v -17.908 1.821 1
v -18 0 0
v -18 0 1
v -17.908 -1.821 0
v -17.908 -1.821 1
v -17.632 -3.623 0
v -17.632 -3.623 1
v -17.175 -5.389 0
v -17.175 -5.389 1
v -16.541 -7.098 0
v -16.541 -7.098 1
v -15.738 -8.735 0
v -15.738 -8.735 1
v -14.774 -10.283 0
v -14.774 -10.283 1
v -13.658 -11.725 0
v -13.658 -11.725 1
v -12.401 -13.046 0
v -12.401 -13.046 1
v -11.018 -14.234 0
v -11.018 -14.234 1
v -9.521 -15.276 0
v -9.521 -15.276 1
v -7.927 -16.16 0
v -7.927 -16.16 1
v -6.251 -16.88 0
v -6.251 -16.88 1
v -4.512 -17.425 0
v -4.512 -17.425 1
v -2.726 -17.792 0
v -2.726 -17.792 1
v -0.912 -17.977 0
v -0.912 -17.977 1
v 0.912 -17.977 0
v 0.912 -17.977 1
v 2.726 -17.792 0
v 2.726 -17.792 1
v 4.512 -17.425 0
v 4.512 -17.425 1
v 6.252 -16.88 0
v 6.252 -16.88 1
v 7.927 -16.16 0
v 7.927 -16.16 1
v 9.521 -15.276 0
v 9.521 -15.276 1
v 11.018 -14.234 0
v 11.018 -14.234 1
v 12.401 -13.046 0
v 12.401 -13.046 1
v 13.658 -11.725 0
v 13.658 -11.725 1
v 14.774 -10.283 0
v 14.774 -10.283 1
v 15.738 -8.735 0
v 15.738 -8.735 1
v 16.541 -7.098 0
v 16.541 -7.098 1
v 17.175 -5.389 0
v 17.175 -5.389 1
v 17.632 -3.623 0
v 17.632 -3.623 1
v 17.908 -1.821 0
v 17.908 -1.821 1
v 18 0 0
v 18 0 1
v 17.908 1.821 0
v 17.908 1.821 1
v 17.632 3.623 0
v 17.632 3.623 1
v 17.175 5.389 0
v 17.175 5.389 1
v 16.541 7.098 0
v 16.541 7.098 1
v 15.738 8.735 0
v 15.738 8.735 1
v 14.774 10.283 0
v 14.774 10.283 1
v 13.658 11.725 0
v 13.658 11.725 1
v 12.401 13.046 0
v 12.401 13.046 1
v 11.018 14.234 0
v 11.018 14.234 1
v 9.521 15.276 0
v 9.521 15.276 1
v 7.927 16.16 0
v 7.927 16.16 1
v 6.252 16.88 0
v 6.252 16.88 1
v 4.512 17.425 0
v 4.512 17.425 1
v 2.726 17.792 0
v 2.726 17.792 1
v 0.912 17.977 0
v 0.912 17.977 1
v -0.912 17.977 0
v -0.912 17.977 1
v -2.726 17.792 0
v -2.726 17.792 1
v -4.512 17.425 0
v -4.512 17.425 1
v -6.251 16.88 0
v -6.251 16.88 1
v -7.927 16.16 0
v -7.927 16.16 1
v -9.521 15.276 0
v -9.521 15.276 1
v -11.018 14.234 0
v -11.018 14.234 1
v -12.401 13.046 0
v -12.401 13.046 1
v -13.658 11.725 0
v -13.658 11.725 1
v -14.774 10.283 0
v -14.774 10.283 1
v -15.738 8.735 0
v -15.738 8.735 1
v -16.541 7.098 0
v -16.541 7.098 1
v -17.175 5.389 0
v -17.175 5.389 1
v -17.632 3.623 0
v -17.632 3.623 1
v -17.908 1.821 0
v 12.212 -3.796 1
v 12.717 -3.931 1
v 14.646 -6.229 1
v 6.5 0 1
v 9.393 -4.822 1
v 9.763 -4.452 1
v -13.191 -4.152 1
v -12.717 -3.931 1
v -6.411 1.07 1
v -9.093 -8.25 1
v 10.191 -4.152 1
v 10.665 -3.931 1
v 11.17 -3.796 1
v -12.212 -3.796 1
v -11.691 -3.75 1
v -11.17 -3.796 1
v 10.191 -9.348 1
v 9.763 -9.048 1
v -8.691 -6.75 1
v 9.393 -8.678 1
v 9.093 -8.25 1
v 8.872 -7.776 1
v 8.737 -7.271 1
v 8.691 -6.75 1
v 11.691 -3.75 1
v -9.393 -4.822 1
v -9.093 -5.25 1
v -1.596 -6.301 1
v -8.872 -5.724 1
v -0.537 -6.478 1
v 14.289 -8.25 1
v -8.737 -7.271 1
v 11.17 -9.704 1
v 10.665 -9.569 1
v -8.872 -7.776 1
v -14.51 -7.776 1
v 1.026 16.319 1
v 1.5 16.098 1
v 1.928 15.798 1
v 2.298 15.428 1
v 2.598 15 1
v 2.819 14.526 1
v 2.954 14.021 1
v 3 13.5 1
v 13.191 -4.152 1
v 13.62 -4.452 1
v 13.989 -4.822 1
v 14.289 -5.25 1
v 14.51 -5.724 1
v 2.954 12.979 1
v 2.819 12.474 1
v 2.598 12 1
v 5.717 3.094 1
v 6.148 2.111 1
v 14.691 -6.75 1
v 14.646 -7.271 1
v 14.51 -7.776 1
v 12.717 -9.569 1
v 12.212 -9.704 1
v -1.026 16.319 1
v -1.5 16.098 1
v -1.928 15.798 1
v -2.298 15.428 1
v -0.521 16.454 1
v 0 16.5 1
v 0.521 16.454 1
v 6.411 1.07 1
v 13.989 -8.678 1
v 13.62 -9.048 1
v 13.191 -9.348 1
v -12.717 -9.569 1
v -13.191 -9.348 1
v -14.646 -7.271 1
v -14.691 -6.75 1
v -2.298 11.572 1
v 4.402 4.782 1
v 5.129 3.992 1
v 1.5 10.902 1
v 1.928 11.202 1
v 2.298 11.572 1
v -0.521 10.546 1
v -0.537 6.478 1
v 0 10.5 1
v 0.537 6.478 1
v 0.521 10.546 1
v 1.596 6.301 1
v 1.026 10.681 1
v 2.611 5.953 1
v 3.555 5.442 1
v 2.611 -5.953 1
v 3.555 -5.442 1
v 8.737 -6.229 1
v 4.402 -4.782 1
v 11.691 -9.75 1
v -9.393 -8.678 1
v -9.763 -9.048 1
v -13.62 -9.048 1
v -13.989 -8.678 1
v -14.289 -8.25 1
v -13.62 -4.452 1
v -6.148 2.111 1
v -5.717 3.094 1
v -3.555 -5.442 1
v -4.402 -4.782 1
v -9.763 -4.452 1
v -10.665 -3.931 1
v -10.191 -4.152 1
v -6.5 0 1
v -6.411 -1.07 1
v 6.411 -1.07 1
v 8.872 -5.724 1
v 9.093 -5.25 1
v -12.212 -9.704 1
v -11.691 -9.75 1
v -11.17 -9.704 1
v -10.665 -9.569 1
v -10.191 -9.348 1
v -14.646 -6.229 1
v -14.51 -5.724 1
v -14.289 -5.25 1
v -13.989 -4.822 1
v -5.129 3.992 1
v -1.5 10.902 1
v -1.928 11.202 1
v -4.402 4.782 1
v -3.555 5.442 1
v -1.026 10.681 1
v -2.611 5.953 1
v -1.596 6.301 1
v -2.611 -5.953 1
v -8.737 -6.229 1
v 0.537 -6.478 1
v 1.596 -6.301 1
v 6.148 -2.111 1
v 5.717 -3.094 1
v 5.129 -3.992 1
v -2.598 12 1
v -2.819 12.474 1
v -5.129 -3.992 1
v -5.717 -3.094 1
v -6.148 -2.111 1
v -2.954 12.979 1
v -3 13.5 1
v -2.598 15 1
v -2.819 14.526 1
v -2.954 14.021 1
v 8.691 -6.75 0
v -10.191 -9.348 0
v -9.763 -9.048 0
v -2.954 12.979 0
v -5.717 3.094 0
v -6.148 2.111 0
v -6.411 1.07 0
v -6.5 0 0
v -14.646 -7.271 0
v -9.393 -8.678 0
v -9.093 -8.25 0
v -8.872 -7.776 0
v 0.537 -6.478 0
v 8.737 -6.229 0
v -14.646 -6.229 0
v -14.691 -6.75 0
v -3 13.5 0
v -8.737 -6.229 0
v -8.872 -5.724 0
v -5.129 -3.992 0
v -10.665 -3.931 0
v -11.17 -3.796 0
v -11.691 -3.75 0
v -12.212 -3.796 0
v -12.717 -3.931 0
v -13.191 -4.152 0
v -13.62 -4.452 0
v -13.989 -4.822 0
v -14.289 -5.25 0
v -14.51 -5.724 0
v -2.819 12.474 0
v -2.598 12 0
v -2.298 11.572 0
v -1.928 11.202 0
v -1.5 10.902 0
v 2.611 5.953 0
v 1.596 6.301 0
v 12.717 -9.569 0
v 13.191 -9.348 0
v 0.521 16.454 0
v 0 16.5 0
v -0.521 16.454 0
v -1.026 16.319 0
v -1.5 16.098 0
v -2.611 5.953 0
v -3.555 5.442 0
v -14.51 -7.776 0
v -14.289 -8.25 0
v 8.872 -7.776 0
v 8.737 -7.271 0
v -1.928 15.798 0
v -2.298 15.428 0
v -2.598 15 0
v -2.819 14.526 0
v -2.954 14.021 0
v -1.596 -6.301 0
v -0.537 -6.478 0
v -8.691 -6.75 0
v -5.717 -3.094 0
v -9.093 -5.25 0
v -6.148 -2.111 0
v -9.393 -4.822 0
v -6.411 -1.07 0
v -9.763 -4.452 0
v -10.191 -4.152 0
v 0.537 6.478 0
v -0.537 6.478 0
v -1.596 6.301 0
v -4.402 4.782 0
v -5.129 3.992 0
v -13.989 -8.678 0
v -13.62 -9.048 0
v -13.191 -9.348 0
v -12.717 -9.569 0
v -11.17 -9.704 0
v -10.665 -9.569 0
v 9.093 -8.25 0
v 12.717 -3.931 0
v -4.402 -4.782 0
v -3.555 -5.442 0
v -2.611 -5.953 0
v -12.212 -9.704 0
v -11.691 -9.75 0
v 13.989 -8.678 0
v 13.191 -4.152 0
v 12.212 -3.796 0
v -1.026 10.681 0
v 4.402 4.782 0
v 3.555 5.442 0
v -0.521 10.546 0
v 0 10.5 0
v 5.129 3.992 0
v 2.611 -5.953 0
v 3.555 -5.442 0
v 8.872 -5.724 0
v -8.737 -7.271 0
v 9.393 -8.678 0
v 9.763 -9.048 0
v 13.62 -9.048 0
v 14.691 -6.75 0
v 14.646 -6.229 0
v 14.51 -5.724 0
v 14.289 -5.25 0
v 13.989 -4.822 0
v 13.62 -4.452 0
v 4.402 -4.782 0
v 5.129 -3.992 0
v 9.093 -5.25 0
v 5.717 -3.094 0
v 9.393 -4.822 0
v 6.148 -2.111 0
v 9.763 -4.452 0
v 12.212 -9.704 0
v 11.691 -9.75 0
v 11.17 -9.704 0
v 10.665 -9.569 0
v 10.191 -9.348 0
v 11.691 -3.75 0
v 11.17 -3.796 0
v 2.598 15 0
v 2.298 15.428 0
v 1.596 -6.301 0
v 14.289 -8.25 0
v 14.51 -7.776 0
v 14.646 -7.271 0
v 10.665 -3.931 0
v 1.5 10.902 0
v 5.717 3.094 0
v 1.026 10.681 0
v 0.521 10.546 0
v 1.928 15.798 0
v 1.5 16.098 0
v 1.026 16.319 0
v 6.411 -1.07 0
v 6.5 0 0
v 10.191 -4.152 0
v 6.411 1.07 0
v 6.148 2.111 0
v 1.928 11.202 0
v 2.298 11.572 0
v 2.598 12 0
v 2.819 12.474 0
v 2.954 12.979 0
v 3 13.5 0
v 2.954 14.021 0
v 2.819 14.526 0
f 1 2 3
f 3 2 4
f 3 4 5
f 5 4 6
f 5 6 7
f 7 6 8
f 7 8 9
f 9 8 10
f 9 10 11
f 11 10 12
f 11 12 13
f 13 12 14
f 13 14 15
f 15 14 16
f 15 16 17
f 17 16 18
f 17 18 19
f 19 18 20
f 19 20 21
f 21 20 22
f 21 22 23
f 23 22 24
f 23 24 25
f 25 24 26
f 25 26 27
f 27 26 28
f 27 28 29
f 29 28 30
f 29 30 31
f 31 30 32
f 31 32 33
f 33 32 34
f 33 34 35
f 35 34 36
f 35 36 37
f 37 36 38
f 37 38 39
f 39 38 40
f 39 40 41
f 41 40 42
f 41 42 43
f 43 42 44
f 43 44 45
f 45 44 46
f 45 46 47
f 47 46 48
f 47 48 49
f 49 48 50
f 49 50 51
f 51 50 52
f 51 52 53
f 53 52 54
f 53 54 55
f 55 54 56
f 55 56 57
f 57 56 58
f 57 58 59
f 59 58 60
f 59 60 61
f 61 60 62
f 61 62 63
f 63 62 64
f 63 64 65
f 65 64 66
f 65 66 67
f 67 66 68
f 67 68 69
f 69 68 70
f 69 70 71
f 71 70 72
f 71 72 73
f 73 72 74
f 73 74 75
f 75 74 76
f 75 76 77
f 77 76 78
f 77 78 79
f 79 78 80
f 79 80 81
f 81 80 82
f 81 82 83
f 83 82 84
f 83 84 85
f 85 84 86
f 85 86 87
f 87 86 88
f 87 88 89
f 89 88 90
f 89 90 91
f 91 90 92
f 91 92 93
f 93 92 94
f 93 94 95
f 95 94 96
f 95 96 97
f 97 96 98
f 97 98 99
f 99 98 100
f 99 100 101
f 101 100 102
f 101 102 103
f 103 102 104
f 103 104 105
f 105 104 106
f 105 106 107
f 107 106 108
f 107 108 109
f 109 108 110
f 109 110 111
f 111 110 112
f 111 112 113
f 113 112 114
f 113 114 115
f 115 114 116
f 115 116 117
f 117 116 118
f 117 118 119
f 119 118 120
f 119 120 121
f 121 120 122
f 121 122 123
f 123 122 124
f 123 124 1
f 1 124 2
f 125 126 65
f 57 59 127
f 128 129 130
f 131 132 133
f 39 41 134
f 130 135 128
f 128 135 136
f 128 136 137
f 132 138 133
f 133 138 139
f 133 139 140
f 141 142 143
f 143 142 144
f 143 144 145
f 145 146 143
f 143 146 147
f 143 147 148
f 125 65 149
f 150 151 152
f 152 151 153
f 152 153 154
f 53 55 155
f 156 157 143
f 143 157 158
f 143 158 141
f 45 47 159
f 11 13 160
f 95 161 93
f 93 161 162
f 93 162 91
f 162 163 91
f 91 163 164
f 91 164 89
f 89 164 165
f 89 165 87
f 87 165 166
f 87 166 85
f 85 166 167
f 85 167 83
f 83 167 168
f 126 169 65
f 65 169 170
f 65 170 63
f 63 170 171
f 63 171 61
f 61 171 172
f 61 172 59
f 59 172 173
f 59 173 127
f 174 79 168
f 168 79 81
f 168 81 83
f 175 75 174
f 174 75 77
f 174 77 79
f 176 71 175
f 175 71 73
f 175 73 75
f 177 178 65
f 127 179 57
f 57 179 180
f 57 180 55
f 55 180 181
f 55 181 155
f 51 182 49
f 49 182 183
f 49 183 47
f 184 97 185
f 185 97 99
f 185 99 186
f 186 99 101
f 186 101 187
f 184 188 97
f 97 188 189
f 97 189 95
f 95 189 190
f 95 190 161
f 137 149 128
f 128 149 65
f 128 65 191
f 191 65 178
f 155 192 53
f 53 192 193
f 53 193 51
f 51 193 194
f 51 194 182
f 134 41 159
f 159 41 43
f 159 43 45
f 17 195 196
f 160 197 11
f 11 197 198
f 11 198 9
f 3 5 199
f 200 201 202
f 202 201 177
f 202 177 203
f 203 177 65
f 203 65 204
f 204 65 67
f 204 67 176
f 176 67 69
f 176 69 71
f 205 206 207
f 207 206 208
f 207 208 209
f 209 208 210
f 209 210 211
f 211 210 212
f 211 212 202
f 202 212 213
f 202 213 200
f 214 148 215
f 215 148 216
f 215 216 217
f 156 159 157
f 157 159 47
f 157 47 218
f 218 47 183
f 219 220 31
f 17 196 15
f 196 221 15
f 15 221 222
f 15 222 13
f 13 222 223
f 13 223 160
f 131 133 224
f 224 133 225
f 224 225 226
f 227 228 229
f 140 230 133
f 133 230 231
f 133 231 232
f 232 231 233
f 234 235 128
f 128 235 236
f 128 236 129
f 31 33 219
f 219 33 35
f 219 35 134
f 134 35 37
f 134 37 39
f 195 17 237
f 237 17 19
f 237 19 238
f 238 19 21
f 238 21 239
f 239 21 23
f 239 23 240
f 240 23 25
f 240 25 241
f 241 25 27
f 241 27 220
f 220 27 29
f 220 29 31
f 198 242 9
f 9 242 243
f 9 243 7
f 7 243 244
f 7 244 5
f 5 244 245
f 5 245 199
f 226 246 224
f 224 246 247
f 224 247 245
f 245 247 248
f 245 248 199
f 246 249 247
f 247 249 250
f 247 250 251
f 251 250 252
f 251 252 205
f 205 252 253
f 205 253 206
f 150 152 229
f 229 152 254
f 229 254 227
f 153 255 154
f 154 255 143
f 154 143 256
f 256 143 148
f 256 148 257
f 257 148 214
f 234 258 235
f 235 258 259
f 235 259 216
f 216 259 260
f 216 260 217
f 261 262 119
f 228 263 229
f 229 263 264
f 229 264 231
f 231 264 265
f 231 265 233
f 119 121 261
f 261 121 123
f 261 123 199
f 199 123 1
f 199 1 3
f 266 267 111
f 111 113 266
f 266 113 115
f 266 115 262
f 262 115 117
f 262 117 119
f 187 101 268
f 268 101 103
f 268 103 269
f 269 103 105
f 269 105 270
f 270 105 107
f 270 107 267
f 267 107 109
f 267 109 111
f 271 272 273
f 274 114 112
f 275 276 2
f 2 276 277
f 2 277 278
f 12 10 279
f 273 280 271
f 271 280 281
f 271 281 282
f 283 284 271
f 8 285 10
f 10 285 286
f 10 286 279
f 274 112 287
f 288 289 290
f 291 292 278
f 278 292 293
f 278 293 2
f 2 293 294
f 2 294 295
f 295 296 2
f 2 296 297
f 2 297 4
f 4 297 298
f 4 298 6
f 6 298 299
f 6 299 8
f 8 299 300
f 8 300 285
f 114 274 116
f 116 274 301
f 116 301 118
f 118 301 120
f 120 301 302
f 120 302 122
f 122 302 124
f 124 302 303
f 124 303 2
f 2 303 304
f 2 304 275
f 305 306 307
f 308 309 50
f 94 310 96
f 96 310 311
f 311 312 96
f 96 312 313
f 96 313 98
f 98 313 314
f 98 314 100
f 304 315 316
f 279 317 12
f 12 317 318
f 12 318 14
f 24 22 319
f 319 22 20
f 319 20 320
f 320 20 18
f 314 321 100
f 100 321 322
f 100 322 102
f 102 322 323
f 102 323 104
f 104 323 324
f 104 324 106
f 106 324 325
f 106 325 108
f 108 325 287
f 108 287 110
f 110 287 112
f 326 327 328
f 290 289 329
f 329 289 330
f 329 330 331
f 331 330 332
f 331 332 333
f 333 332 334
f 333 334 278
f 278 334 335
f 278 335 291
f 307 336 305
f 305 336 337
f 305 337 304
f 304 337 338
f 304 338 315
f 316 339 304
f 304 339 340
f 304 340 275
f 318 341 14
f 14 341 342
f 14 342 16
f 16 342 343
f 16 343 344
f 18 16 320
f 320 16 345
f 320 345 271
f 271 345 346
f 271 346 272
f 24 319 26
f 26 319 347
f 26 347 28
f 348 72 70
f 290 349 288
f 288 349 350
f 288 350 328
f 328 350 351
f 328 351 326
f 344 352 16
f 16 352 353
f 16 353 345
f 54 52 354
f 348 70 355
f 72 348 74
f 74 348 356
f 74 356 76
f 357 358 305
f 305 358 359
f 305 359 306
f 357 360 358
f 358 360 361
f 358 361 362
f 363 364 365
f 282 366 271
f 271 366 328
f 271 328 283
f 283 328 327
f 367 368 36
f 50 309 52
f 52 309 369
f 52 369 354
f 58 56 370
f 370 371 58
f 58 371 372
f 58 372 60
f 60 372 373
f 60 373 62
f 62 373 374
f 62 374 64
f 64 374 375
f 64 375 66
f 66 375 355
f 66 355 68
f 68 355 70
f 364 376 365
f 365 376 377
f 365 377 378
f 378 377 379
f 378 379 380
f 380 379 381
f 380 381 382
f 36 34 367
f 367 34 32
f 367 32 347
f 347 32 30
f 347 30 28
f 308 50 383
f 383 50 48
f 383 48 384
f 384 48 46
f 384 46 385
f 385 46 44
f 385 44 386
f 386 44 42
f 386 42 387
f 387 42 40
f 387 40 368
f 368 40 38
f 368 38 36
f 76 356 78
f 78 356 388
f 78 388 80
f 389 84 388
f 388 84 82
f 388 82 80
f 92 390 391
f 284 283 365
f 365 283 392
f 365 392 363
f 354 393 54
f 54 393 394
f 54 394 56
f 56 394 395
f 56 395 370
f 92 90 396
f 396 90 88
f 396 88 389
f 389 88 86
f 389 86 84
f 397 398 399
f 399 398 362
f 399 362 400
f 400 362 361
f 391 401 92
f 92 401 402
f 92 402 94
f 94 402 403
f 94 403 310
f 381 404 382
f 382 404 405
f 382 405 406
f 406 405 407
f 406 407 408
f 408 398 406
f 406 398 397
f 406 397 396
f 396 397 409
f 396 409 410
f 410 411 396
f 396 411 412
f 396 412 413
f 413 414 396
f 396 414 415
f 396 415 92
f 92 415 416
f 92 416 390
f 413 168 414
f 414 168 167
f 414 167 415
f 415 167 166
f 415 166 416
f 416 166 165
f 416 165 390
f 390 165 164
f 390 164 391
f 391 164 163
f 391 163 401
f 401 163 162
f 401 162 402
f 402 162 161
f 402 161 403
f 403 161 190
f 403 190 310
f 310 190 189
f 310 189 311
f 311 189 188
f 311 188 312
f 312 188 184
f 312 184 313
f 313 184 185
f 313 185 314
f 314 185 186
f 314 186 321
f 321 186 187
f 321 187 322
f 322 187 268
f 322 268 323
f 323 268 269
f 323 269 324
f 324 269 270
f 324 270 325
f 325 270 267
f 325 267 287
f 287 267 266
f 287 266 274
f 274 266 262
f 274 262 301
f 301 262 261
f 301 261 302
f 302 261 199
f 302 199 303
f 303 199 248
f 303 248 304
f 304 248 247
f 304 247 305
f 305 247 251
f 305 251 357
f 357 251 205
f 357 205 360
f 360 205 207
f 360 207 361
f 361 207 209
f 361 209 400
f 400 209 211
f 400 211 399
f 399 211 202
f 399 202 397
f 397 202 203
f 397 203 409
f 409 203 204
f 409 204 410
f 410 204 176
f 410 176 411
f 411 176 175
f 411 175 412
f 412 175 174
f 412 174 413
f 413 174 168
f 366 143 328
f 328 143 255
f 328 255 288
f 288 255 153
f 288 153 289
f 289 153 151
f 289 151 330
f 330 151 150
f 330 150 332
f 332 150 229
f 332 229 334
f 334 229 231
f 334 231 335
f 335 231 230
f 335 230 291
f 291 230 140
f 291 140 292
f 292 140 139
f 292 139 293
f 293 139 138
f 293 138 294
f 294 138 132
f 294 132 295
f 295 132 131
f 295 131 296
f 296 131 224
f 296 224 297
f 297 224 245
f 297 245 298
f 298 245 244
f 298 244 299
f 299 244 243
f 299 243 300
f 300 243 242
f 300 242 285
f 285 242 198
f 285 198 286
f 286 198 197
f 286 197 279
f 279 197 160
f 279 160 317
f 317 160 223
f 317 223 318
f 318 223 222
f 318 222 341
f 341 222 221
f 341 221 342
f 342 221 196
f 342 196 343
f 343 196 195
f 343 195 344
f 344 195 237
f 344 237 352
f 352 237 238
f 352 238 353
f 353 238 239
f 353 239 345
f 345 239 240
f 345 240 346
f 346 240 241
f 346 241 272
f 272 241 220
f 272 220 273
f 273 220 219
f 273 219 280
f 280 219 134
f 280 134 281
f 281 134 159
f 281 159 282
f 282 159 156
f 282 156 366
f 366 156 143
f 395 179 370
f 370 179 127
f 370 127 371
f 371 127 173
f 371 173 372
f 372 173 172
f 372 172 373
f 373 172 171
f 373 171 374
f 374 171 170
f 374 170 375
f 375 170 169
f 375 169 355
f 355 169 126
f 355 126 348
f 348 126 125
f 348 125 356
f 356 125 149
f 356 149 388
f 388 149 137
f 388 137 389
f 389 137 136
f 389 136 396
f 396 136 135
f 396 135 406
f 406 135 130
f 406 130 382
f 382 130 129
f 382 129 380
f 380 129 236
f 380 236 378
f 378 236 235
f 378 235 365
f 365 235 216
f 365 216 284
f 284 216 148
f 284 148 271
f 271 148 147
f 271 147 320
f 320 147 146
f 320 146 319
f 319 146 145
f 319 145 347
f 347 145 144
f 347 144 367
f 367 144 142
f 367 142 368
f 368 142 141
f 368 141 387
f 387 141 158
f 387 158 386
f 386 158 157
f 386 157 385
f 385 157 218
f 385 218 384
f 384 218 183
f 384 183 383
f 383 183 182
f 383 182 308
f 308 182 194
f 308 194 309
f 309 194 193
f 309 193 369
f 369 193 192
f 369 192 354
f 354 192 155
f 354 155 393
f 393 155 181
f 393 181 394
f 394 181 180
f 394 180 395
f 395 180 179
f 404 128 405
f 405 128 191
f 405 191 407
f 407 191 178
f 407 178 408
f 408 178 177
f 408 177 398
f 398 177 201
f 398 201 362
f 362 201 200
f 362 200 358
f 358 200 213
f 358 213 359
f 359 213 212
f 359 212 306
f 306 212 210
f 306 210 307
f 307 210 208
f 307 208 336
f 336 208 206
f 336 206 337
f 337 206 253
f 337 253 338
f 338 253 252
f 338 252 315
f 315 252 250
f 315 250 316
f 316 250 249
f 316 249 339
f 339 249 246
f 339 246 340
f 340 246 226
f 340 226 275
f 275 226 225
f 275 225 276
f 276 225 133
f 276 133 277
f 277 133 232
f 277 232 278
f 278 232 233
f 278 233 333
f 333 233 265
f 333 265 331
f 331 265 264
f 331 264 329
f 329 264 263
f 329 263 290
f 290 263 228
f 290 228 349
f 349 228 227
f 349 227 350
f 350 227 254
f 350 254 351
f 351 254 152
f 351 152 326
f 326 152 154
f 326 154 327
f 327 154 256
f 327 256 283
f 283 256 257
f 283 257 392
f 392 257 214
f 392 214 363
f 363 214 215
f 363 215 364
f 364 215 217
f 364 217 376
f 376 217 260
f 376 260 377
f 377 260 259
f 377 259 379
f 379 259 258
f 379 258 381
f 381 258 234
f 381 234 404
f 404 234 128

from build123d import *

# Parameters (mm, degrees)
CROQUIS1_R              = 18
SALIENTE_EXTRUIR2_DEPTH = 1
CROQUIS5_R              = 3
CROQUIS5_R_2            = 6.5
CORTAR_EXTRUIR3_DEPTH   = 1


with BuildPart() as part:
    # Croquis1 → Saliente-Extruir2 (new body)
    with BuildSketch(Plane.XY):
        Circle(CROQUIS1_R)
    extrude(amount=SALIENTE_EXTRUIR2_DEPTH)

    # Croquis5 → Cortar-Extruir3 (cut)
    with BuildSketch(Plane.XY.offset(1)):
        with Locations((0, 13.5)):
            Circle(CROQUIS5_R)
        with Locations((11.691342951, -6.75)):
            Circle(CROQUIS5_R)
        with Locations((-11.691342951, -6.75)):
            Circle(CROQUIS5_R)
        Circle(CROQUIS5_R_2)
    extrude(amount=-CORTAR_EXTRUIR3_DEPTH, mode=Mode.SUBTRACT)


solid = part.part
